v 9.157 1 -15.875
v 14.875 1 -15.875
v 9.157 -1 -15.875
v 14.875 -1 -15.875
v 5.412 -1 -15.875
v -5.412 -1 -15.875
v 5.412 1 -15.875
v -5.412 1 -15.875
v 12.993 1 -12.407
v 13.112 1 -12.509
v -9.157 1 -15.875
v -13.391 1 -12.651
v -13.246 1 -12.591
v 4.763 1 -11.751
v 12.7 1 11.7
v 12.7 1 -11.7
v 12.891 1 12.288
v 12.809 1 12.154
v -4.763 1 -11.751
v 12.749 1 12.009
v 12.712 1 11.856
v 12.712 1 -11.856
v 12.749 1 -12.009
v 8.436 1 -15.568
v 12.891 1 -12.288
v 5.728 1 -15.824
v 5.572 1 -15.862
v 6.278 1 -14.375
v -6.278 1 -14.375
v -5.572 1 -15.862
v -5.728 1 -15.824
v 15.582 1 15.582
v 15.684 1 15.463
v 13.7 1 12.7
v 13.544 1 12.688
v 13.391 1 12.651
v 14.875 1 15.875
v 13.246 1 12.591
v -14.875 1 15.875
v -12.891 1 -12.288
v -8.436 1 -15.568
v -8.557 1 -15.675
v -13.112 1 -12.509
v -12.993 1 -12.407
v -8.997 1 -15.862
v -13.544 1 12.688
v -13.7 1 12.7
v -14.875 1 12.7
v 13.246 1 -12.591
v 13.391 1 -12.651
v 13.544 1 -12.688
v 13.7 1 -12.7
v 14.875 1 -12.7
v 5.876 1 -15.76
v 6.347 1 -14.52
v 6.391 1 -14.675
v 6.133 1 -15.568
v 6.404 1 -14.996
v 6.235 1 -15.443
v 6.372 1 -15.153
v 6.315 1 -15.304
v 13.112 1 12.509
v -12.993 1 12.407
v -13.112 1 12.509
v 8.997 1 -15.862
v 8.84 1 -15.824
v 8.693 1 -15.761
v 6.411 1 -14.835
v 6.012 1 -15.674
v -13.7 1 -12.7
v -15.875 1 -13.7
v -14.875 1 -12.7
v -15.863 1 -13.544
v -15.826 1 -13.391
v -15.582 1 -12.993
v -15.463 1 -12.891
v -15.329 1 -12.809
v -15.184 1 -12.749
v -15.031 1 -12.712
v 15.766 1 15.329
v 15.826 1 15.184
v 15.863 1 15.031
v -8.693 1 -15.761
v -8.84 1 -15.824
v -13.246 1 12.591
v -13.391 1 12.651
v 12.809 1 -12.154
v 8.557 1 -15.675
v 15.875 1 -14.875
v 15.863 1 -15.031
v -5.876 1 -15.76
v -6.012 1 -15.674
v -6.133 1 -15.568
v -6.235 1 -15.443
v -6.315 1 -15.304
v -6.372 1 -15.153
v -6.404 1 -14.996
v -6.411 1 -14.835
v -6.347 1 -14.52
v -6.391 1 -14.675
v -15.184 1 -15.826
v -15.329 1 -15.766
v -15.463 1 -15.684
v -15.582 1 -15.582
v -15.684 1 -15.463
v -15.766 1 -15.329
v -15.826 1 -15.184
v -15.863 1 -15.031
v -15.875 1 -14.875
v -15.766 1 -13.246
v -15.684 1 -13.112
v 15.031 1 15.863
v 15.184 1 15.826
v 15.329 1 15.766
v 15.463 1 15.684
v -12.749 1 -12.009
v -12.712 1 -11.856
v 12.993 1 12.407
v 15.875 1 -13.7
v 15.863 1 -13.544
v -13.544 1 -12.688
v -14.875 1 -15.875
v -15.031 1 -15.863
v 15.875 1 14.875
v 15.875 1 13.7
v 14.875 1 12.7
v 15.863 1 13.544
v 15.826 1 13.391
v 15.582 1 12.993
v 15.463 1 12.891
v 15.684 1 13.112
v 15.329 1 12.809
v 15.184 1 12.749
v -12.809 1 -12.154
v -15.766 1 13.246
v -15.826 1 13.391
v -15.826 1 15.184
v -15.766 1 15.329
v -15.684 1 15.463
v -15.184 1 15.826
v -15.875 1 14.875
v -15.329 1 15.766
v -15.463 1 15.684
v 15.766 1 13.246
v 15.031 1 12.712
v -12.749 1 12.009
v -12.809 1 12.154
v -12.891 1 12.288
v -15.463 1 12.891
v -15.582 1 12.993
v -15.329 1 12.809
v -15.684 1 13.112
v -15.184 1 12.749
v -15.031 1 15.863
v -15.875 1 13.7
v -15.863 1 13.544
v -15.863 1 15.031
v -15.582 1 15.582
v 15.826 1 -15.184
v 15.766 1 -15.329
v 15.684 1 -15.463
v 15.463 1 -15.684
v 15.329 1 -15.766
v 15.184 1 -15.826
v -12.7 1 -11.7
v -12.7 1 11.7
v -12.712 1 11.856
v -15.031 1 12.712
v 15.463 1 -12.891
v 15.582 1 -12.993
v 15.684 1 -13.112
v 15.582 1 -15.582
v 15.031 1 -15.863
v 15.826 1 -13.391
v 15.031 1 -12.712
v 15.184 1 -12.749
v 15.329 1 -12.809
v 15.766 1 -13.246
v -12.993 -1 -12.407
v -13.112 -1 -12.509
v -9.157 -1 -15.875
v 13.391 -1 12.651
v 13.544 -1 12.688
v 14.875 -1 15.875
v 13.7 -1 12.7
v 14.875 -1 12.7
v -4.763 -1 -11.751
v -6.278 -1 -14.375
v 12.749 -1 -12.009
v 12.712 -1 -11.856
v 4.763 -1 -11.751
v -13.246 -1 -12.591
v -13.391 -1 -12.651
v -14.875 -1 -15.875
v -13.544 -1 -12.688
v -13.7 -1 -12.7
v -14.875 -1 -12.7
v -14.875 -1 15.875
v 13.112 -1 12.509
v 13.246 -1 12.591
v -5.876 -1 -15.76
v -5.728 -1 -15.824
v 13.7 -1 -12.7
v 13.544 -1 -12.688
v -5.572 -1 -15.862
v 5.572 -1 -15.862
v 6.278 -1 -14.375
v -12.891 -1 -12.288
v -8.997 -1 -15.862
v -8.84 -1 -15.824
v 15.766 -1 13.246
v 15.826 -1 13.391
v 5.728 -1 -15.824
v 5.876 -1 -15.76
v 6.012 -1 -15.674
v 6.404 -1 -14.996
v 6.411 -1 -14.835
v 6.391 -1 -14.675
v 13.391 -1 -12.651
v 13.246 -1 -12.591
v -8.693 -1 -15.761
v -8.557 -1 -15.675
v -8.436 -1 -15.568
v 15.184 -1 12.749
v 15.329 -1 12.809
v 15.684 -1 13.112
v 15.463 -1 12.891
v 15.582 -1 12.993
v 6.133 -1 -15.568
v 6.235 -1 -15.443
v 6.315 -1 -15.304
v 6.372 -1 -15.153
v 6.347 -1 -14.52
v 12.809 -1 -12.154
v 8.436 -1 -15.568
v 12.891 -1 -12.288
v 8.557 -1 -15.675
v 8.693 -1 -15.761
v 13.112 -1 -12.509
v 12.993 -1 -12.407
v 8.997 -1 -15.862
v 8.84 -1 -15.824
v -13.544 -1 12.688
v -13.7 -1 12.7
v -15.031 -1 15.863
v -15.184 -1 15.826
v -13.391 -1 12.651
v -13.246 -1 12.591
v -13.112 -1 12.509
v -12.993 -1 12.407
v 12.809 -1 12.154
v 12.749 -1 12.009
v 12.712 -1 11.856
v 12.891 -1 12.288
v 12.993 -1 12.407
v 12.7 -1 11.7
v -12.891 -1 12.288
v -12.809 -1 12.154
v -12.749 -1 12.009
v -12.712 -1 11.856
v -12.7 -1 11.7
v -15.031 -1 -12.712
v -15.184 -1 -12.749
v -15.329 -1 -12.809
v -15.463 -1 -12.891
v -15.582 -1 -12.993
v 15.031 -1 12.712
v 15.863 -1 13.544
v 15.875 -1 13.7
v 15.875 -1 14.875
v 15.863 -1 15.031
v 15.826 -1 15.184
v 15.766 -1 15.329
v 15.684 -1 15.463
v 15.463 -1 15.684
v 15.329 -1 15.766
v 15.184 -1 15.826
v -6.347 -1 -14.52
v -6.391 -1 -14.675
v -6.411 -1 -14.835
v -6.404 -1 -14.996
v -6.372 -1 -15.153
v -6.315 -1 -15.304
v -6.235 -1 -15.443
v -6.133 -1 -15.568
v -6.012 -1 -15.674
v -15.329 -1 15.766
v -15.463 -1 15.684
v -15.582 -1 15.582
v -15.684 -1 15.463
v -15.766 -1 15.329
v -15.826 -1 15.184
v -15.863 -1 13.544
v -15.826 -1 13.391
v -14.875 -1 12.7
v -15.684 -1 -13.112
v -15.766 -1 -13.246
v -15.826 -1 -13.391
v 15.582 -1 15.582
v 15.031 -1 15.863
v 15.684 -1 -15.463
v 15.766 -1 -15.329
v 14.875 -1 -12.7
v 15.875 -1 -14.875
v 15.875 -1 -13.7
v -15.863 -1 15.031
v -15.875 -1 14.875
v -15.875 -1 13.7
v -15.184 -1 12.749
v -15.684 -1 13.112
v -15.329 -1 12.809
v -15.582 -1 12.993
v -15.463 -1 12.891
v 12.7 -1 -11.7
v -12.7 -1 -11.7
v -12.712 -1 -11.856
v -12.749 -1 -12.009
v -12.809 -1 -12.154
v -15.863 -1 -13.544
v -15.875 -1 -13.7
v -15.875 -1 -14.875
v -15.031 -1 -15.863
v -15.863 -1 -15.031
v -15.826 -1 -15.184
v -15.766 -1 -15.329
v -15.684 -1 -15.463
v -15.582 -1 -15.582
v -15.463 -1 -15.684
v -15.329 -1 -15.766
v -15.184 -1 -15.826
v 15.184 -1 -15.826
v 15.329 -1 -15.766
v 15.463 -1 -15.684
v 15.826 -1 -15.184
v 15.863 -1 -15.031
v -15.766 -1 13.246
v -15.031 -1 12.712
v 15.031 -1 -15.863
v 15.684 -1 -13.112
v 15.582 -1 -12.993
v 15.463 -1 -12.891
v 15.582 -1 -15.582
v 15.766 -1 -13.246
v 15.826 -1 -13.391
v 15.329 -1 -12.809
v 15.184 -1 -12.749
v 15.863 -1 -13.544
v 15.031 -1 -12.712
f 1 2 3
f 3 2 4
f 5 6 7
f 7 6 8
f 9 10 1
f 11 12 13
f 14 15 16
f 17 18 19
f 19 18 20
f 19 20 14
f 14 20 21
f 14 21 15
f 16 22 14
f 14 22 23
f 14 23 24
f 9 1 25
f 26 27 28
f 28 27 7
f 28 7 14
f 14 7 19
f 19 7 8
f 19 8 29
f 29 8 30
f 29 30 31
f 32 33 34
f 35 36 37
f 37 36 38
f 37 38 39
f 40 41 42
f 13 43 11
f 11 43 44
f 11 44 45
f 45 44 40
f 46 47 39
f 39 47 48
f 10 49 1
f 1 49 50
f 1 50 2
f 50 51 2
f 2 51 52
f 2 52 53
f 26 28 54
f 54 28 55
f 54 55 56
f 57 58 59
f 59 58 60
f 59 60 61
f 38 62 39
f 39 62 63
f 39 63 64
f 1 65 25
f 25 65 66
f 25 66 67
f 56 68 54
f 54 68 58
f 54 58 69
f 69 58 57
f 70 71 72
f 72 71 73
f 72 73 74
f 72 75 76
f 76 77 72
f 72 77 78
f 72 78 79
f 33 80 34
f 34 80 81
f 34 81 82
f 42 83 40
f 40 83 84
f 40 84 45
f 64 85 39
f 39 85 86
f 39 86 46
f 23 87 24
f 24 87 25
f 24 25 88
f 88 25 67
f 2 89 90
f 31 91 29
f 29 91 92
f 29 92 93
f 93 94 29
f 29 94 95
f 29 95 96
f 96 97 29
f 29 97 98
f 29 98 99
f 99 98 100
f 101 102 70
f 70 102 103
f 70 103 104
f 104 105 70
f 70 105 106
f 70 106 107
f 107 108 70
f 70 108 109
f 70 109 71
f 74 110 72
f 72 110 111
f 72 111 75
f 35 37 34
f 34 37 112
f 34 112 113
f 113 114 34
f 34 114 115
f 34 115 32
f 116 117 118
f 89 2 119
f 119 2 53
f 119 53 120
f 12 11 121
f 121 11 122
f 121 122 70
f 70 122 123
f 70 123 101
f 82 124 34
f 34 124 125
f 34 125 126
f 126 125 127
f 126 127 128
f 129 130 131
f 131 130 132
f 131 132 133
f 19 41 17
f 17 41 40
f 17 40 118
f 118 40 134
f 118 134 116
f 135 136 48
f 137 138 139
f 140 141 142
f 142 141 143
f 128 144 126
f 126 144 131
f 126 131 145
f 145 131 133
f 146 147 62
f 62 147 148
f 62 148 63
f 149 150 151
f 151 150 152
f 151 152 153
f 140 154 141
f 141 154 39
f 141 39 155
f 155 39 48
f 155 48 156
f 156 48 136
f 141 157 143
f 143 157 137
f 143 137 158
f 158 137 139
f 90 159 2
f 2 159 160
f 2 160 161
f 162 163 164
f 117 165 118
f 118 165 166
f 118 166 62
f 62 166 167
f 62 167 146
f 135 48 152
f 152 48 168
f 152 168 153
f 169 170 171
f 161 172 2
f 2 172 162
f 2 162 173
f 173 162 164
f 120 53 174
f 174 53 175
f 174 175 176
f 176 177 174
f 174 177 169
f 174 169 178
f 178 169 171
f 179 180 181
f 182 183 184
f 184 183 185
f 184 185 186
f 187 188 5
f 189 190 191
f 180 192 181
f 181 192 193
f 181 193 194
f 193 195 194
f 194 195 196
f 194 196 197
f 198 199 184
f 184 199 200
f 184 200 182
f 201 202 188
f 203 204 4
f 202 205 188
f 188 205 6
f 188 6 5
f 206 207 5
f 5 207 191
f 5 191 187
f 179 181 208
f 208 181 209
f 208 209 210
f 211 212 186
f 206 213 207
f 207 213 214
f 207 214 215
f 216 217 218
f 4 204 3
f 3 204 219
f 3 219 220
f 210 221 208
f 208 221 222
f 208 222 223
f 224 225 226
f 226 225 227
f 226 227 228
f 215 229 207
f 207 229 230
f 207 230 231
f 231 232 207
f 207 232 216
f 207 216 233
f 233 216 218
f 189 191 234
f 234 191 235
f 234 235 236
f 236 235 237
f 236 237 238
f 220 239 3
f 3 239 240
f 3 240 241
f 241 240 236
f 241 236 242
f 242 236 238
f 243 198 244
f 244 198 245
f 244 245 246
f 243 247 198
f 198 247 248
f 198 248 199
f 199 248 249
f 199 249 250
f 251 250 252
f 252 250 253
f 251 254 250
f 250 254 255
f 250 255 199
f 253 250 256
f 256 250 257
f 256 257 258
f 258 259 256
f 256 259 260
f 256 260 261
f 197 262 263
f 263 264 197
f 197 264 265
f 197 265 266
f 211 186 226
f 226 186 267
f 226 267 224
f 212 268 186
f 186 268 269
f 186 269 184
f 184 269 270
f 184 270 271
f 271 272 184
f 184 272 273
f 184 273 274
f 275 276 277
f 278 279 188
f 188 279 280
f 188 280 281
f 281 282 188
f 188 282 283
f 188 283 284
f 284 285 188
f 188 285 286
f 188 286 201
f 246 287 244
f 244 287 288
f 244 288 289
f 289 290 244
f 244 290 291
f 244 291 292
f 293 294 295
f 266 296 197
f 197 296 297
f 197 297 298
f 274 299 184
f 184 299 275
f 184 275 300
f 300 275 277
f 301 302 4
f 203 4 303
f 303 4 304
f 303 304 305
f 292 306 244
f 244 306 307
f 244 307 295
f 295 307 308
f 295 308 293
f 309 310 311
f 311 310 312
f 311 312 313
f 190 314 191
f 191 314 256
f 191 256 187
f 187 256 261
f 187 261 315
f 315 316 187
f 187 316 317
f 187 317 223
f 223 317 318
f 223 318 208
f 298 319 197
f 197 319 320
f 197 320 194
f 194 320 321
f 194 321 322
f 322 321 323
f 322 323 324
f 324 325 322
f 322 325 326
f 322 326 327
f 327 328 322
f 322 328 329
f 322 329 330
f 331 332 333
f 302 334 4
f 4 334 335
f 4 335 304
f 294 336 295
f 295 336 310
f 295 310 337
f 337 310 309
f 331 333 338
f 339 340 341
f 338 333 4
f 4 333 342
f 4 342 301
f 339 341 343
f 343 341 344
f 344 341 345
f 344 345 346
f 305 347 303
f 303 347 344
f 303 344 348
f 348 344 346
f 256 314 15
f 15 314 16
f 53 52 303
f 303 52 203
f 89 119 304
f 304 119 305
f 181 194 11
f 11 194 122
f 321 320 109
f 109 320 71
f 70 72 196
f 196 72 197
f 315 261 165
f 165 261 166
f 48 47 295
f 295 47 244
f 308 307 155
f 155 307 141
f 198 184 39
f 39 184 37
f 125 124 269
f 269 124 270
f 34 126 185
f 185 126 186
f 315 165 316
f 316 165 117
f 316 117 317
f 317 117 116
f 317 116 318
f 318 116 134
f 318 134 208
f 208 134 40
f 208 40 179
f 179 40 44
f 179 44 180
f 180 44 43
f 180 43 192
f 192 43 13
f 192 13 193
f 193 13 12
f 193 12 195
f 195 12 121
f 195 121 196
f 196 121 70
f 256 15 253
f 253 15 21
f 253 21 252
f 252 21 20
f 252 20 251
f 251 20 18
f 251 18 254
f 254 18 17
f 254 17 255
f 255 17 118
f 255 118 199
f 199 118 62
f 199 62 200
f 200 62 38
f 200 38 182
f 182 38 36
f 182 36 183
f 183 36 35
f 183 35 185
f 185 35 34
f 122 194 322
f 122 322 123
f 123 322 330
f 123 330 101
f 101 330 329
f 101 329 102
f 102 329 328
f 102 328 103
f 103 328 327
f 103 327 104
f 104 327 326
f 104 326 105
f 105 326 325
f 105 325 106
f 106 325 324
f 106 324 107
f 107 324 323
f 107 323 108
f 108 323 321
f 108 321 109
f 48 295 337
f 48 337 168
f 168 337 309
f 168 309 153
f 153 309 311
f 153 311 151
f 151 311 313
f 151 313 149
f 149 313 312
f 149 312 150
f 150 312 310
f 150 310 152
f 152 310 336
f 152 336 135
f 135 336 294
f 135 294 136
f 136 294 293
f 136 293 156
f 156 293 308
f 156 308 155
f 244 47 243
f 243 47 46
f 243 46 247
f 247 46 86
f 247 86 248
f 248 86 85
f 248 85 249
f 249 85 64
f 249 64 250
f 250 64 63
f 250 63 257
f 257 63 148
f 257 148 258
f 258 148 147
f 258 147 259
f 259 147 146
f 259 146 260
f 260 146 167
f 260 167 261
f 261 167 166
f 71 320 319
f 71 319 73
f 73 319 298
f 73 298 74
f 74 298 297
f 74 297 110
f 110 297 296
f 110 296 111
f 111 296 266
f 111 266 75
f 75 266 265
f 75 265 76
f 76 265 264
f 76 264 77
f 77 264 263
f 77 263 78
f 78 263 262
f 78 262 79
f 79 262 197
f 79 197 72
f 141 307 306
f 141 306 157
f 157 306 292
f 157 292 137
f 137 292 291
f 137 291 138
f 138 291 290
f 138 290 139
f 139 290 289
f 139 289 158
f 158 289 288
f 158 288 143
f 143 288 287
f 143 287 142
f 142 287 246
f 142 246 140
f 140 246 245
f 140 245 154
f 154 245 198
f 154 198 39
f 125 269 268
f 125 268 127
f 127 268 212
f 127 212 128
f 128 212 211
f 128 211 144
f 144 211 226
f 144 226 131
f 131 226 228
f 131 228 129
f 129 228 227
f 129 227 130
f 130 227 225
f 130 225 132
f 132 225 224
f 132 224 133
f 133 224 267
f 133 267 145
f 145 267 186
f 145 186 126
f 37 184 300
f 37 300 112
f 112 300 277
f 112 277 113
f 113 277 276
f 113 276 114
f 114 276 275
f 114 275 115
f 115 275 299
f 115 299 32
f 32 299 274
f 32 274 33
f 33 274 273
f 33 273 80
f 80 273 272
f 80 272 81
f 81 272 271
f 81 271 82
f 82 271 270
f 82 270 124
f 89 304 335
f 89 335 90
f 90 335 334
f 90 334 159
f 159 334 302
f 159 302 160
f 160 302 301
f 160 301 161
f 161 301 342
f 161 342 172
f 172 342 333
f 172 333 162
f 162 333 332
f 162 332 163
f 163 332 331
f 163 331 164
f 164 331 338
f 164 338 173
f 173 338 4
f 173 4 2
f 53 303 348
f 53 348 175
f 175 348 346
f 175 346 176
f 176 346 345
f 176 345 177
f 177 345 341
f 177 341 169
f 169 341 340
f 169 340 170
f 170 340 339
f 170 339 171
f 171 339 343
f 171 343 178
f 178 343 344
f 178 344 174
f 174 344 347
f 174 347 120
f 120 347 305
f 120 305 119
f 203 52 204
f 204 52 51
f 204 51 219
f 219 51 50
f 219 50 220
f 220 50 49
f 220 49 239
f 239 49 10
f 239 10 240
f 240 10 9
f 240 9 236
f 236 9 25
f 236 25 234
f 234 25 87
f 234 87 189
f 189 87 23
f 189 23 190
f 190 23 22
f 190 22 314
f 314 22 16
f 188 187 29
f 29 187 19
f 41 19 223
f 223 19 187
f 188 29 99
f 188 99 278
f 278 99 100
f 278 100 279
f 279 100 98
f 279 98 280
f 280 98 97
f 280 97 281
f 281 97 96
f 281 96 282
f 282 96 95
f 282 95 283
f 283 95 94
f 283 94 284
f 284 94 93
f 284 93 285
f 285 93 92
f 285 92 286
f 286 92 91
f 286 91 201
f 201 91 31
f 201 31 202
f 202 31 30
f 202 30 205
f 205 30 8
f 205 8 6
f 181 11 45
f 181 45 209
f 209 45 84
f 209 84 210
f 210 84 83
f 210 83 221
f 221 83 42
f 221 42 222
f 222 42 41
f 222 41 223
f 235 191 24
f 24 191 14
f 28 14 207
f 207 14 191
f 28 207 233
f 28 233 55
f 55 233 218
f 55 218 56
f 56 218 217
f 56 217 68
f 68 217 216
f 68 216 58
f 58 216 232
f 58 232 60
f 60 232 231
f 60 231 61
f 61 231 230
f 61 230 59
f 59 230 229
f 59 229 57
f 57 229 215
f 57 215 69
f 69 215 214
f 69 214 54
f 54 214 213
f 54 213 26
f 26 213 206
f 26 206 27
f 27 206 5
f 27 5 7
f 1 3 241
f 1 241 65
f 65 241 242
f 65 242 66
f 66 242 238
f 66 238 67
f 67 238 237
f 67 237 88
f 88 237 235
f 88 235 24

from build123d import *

# Parameters (mm, degrees)
BOSS_EXTRUDE1_DEPTH  = 1
FILLET1_R            = 1
CUT_EXTRUDE1_START   = -3
CUT_EXTRUDE1_DEPTH   = 4
FILLET2_R            = 1
FILLET2_OF_MIRROR1_R = 1


with BuildPart() as part:
    # Sketch1 → Boss-Extrude1 (new body, symmetric)
    with BuildSketch(Plane(origin=(0, 0, 0), x_dir=(1, 0, 0), z_dir=(0, 1, 0))):
        Polygon((12.7, 12.7), (15.875, 12.7), (15.875, 15.875), (-15.875, 15.875), (-15.875, 12.7), (-12.7, 12.7), (-12.7, -12.7), (-15.875, -12.7), (-15.875, -15.875), (15.875, -15.875), (15.875, -12.7), (12.7, -12.7), align=None)
    extrude(amount=BOSS_EXTRUDE1_DEPTH, both=True)

    # Fillet1
    fillet1_edges = [part.edges().sort_by_distance(p)[0] for p in [
        (12.7, 0, 12.7),
        (15.875, 0, 12.7),
        (15.875, 0, 15.875),
        (-15.875, 0, 15.875),
        (-15.875, 0, 12.7),
        (-12.7, 0, 12.7),
        (-12.7, 0, -12.7),
        (-15.875, 0, -12.7),
        (-15.875, 0, -15.875),
        (15.875, 0, -15.875),
        (15.875, 0, -12.7),
        (12.7, 0, -12.7),
    ]]
    fillet(fillet1_edges, radius=FILLET1_R)

    # Sketch2 → Cut-Extrude1 (cut)
    with BuildSketch(Plane(origin=(0, 1, 0), x_dir=(1, 0, 0), z_dir=(0, 1, 0)).offset(CUT_EXTRUDE1_START)):
        Polygon((-8.73125, 15.875), (-4.7625, 11.750554014), (-7.14375, 15.875), align=None)
    cut_extrude1 = extrude(amount=CUT_EXTRUDE1_DEPTH, mode=Mode.SUBTRACT)

    # Fillet2
    fillet2_edges = [part.edges().sort_by_distance(p)[0] for p in [
        (-7.14375, 0, -15.875),
        (-8.73125, 0, -15.875),
    ]]
    fillet(fillet2_edges, radius=FILLET2_R)

    # Mirror1: Cut-Extrude1 across plane
    add(cut_extrude1.mirror(Plane(origin=(0, 0, 0), x_dir=(0, 0, 1), z_dir=(1, 0, 0))), mode=Mode.SUBTRACT)

    # Fillet2 of Mirror1
    fillet2_of_mirror1_edges = [part.edges().sort_by_distance(p)[0] for p in [
        (7.14375, 0, -15.875),
        (8.73125, 0, -15.875),
    ]]
    fillet(fillet2_of_mirror1_edges, radius=FILLET2_OF_MIRROR1_R)


solid = part.part
